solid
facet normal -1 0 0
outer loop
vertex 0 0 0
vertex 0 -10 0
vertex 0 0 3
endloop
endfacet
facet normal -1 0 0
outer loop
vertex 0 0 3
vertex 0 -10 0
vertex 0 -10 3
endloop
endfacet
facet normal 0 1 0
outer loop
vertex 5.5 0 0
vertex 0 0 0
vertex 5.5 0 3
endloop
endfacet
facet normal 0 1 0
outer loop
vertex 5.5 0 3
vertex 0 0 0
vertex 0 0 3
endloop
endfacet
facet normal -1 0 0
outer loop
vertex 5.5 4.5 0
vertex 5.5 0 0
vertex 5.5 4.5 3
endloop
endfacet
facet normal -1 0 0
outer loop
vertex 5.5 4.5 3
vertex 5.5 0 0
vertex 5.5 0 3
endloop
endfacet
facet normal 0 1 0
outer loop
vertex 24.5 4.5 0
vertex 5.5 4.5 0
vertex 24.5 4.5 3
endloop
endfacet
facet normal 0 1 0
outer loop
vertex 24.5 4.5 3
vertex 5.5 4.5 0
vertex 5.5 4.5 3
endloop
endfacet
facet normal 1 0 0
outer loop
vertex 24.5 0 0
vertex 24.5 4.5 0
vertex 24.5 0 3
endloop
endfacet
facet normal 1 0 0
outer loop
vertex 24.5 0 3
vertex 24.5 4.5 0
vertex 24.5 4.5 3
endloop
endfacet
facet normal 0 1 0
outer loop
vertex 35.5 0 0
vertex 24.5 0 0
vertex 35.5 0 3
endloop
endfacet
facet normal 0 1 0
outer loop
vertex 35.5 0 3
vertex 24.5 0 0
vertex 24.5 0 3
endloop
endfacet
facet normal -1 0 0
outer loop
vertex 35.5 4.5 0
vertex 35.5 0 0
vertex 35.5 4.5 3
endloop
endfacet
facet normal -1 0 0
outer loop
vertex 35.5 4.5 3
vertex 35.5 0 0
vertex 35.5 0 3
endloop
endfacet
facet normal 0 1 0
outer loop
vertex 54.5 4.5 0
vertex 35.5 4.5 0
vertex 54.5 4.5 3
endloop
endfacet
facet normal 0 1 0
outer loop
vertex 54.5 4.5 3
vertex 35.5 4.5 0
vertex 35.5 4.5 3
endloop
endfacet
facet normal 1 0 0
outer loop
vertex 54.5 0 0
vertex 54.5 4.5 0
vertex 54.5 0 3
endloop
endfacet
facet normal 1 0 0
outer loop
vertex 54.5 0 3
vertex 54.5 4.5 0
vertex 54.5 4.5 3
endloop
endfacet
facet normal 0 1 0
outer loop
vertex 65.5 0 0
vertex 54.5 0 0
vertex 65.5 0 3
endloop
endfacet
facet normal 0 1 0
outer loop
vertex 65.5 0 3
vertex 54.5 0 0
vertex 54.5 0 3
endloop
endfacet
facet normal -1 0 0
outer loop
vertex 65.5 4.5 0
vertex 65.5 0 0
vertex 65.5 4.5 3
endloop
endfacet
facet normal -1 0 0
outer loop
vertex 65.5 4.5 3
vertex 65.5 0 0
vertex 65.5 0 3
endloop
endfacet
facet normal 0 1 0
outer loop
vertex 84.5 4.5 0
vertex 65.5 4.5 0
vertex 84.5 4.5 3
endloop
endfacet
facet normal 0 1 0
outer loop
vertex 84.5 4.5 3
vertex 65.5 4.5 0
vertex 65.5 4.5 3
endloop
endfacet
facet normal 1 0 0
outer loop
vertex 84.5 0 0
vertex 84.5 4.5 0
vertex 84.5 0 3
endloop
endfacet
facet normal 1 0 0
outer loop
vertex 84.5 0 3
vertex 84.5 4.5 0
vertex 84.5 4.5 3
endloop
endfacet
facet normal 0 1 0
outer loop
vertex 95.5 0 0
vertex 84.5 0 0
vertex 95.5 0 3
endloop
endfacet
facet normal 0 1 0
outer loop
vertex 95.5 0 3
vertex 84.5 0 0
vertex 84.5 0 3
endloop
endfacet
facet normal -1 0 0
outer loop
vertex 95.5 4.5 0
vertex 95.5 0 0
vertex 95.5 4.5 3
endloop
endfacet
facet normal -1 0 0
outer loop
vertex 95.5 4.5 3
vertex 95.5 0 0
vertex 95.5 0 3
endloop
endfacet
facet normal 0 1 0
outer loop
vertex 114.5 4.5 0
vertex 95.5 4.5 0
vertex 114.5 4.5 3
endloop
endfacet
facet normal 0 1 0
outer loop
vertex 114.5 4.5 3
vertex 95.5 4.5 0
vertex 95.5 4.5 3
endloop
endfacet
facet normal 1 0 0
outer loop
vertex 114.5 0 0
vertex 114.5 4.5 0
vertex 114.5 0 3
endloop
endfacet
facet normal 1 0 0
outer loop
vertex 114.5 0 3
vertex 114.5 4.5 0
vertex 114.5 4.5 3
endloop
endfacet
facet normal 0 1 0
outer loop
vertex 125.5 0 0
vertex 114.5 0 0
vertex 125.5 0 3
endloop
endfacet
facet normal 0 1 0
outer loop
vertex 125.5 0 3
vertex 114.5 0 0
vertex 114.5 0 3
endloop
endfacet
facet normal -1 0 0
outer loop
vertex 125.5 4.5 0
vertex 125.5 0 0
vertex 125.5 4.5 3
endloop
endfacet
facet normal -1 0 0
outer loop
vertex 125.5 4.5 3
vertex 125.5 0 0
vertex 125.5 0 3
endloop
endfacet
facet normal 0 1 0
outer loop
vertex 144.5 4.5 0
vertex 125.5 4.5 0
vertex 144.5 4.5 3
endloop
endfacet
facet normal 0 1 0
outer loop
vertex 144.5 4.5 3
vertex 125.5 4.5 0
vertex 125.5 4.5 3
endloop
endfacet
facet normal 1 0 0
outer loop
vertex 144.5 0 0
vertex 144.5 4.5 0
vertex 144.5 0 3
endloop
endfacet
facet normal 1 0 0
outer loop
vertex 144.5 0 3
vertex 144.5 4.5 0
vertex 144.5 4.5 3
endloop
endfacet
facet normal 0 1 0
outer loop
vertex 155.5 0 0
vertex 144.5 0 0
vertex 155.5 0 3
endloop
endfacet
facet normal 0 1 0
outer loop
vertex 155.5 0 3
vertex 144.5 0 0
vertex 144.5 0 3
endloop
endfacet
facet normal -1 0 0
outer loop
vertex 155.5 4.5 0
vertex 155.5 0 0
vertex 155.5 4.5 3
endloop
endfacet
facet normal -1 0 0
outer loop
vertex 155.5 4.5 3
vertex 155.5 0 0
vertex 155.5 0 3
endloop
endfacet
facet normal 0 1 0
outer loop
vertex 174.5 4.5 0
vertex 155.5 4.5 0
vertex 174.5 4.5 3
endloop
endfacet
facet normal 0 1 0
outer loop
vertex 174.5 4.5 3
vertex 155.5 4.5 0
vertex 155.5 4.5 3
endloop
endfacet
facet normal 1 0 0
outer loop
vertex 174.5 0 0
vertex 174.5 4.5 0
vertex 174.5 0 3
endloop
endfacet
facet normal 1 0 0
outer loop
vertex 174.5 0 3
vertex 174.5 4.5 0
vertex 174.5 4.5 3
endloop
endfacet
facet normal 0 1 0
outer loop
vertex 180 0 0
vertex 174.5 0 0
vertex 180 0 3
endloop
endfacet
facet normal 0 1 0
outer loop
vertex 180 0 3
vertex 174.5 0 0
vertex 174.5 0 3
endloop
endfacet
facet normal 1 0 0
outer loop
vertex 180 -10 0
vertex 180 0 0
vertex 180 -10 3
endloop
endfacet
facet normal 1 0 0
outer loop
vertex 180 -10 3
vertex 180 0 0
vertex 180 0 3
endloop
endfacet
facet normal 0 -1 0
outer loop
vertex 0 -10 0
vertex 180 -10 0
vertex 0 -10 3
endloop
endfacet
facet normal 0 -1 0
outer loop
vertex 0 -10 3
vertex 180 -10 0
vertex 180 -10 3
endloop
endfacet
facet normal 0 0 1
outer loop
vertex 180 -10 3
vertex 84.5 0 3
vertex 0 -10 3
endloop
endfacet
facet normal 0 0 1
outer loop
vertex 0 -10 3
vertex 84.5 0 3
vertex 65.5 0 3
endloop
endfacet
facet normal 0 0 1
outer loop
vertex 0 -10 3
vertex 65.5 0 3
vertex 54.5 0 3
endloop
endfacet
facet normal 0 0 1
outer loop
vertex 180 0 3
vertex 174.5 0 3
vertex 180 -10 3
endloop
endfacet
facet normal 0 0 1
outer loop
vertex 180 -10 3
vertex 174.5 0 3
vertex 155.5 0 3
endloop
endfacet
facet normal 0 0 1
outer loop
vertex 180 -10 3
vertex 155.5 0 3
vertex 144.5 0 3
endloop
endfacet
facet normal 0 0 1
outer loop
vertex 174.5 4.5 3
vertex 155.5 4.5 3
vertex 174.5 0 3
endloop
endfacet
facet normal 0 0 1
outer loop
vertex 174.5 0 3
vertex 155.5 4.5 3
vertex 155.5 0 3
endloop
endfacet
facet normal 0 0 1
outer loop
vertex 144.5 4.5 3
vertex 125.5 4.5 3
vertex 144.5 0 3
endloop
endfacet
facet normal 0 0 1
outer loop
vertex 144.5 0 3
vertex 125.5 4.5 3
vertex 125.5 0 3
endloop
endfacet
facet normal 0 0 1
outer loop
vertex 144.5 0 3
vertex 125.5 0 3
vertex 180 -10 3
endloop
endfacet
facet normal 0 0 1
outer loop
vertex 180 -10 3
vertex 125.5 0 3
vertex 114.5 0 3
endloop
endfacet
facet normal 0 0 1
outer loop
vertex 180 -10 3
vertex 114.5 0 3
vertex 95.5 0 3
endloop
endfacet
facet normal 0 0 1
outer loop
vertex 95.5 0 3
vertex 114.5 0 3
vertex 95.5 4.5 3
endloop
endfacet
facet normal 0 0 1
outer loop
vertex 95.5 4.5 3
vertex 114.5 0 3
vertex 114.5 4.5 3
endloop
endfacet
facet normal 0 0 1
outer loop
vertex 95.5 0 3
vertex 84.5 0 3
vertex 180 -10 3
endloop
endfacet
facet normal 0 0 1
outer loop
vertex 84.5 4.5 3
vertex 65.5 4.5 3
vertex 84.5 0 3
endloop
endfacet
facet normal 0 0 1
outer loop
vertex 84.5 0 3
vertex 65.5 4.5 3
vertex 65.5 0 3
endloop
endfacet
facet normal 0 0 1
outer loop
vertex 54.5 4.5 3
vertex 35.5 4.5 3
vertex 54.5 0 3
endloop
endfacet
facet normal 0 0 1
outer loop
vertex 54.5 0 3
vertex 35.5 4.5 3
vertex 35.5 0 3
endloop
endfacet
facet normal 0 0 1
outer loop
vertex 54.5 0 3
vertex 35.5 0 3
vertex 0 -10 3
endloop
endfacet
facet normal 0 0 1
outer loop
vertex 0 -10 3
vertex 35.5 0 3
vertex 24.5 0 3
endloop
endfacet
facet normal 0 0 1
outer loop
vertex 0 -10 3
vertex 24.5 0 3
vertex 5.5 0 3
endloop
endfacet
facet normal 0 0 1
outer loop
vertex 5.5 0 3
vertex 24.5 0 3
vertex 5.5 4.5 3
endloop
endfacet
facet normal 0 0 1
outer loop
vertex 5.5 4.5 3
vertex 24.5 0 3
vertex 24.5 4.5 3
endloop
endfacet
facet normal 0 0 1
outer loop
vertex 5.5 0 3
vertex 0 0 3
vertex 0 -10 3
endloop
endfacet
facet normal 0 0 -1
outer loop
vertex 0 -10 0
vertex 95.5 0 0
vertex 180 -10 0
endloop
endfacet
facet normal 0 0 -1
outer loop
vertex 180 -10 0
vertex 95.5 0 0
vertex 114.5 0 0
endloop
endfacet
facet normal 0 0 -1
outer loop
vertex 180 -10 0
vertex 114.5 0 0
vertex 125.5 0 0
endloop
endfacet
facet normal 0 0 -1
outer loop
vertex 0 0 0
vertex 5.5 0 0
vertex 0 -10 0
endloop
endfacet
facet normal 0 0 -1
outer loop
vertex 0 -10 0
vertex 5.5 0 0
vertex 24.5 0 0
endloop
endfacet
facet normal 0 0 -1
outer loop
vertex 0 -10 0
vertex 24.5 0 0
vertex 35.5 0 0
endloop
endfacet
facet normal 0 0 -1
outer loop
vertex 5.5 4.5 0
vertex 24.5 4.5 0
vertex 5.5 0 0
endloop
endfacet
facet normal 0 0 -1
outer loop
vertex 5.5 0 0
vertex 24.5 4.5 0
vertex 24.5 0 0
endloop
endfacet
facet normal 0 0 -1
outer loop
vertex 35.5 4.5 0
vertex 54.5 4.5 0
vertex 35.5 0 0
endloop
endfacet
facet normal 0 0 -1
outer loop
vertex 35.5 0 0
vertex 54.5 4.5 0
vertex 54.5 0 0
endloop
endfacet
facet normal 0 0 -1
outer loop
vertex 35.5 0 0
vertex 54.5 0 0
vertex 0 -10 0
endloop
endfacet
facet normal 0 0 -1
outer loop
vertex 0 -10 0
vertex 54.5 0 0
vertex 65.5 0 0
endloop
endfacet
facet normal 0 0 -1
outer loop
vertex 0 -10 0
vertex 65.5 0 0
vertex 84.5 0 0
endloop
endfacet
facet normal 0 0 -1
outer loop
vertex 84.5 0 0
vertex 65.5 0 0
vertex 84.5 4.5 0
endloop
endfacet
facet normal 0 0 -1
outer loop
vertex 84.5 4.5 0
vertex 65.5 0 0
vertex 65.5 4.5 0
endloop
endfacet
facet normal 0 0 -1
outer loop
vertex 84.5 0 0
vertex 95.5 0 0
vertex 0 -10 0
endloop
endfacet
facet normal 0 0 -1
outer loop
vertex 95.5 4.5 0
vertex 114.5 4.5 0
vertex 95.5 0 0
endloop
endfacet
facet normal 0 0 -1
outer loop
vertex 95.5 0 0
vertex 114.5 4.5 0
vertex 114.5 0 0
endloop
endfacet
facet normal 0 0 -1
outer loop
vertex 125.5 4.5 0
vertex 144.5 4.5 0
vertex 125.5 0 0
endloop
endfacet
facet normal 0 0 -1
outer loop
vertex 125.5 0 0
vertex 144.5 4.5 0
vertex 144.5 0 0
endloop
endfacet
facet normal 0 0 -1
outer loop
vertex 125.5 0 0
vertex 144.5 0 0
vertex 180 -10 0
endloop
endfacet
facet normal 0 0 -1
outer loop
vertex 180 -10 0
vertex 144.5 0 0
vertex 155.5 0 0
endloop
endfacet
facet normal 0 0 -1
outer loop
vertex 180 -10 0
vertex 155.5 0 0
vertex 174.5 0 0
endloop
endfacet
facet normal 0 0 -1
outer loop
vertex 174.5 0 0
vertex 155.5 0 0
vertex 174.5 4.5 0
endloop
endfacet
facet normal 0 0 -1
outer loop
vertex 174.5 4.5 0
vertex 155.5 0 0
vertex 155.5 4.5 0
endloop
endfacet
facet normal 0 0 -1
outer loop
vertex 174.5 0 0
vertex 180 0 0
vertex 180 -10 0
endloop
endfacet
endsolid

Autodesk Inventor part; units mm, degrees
ref_plane "YZ Plane" through (0, 0, 0) normal (1, 0, 0) x (0, 1, 0)
ref_plane "XZ Plane" through (0, 0, 0) normal (0, 1, 0) x (-1, 0, 0)
ref_plane "XY Plane" through (0, 0, 0) normal (0, 0, 1) x (1, 0, 0)
sketch "Sketch1" plane through (0, 0, 0) normal (0, 0, 1) x (1, 0, 0)
  line L0 (0, 0) -> (180, 0)
  line L1 (180, 0) -> (180, -10)
  line L2 (180, -10) -> (0, -10)
  line L3 (0, -10) -> (0, 0)
  line L4 (5.5, 0) -> (24.5, 0)
  line L5 (24.5, 0) -> (24.5, 4.5)
  line L6 (24.5, 4.5) -> (5.5, 4.5)
  line L7 (5.5, 4.5) -> (5.5, 0)
  line L8 (54.5, 4.5) -> (35.5, 4.5)
  line L9 (54.5, 0) -> (54.5, 4.5)
  line L10 (35.5, 4.5) -> (35.5, 0)
  line L11 (84.5, 4.5) -> (65.5, 4.5)
  line L12 (84.5, 0) -> (84.5, 4.5)
  line L13 (65.5, 4.5) -> (65.5, 0)
  line L14 (114.5, 4.5) -> (95.5, 4.5)
  line L15 (114.5, 0) -> (114.5, 4.5)
  line L16 (95.5, 4.5) -> (95.5, 0)
  line L17 (144.5, 4.5) -> (125.5, 4.5)
  line L18 (144.5, 0) -> (144.5, 4.5)
  line L19 (125.5, 4.5) -> (125.5, 0)
  line L20 (174.5, 4.5) -> (155.5, 4.5)
  line L21 (174.5, 0) -> (174.5, 4.5)
  line L22 (155.5, 4.5) -> (155.5, 0)
  dimension "d0" = 180
  dimension "d1" = 10
  dimension "d2" = 19
  dimension "d3" = 4.5
  dimension "d4" = 5.5
  dimension "d7" = 30
extrude "Extrusion1" add sketch "Sketch1" along normal blind 3
properties part number "tray_side_support"
